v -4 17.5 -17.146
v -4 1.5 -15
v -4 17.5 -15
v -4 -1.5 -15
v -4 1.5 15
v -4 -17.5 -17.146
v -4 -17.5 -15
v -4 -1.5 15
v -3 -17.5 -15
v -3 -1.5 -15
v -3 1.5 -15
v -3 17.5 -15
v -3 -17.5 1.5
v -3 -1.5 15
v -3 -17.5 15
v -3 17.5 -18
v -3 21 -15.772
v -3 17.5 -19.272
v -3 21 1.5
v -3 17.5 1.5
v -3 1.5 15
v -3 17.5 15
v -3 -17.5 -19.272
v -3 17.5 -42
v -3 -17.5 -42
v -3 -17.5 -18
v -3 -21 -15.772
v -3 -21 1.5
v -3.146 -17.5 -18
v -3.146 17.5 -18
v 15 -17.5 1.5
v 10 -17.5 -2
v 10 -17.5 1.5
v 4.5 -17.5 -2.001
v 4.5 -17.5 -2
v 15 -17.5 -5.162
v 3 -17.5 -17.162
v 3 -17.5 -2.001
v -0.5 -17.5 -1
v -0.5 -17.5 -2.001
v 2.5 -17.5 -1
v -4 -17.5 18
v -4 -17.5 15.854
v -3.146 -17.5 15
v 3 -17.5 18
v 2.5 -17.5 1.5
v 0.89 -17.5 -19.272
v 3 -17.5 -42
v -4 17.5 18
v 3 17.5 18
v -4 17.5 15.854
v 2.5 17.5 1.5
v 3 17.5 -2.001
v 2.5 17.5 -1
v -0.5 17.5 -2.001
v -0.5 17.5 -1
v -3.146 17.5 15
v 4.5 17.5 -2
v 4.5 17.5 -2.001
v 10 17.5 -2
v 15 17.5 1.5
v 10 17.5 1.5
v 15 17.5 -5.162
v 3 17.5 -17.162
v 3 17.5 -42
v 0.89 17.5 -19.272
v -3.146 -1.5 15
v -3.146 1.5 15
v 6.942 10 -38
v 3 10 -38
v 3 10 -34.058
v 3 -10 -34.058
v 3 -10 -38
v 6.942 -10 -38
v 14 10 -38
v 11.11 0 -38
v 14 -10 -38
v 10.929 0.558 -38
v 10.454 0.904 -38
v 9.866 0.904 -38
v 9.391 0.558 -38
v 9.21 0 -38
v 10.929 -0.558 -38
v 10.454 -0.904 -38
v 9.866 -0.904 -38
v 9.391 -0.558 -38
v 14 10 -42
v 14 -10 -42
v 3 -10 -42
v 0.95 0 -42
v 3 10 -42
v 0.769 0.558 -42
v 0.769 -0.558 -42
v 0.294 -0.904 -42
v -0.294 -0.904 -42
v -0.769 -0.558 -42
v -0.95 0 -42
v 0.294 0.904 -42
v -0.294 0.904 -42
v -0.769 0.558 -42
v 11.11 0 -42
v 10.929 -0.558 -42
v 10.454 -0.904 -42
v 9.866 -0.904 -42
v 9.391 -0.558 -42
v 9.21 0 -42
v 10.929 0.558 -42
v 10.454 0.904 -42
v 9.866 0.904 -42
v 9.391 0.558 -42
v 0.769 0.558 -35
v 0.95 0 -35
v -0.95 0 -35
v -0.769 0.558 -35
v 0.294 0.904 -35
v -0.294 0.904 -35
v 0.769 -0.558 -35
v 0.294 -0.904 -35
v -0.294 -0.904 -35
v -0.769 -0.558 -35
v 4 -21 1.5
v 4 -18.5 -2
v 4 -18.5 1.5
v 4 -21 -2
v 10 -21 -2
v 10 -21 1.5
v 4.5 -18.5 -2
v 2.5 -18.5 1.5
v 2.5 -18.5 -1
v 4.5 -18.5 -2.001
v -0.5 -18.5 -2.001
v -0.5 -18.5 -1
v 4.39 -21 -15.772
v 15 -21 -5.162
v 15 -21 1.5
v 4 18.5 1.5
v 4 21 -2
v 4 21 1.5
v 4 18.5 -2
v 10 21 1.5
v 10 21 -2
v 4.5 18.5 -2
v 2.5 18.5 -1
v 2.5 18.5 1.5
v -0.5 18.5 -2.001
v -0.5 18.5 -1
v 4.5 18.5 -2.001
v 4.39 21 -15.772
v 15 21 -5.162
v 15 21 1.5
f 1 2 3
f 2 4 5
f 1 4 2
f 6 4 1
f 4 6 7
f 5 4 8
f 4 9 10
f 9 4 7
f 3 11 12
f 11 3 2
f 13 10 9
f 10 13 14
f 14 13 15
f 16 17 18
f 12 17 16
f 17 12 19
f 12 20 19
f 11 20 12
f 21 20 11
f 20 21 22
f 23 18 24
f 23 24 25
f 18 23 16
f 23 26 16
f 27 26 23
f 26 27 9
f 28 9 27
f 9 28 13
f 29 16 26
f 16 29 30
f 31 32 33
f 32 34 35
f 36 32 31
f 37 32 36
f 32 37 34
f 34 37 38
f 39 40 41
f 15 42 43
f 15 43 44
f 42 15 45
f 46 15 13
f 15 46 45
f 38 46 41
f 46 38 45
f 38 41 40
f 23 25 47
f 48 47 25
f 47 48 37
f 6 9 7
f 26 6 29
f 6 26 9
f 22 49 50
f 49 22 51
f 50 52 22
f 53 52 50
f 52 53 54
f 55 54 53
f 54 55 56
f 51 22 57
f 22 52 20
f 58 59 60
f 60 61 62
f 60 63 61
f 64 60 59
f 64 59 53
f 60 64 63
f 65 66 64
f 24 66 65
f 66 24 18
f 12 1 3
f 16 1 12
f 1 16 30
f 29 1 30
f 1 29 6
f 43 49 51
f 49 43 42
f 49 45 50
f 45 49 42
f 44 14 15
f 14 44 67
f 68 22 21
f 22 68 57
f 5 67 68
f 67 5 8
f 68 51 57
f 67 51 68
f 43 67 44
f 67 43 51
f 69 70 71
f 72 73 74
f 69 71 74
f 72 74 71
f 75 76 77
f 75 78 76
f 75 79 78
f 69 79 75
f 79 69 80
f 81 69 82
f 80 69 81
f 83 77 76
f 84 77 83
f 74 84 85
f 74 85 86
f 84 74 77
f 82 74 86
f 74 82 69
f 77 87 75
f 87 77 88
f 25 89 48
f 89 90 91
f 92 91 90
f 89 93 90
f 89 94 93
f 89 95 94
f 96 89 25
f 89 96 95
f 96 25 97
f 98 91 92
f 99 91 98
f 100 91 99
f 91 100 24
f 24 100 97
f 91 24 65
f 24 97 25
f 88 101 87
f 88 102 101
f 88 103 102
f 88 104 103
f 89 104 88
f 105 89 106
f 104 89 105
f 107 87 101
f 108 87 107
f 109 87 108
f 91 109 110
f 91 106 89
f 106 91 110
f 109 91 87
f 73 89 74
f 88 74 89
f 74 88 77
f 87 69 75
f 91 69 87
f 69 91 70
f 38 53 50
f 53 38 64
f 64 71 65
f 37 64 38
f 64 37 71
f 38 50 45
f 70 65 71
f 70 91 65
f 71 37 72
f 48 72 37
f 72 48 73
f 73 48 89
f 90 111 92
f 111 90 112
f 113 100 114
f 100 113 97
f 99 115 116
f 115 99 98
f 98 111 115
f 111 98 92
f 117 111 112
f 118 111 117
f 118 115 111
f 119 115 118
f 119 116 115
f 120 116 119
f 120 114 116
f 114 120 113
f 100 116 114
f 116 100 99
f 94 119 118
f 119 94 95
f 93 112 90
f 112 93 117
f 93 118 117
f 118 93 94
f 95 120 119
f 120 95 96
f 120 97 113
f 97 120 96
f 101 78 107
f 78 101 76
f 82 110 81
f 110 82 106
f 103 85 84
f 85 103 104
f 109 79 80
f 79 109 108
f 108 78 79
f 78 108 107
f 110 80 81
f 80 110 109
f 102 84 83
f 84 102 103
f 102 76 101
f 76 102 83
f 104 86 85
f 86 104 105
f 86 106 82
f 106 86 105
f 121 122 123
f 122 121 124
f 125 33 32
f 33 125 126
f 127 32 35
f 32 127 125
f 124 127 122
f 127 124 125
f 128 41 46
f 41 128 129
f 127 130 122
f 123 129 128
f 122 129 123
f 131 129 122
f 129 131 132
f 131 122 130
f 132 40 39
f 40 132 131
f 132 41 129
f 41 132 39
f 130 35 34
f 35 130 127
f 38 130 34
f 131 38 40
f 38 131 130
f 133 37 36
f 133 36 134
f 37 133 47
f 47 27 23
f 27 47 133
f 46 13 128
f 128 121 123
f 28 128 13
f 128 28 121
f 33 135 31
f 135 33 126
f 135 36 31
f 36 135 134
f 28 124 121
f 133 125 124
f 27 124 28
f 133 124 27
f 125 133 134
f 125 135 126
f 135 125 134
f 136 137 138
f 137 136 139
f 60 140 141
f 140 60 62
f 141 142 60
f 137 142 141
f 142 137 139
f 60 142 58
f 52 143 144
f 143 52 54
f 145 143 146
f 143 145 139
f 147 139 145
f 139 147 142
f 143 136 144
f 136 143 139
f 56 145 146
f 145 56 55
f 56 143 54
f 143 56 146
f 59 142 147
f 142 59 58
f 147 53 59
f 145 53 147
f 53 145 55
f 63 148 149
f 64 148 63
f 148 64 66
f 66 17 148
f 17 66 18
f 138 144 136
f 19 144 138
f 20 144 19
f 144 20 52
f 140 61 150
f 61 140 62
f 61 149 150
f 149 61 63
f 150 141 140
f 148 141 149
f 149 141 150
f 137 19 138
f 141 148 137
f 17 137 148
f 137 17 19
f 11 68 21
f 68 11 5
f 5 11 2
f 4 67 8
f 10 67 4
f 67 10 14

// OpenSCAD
yfan=35; // plastic contact to aluminium
zfan=24;
zalu=30; // aluminium height 30
yalu=3.0; // aluminium middle trench 3
xalu=1.0; // aluminium grip thickness
yhole=30; // vent hole
zhole=21;

xhook=5;
yhook=3.5;
zhook=3;
zhook_nozzle=48; // from hook center to nozzle height 38 mm
xnozzle=8.6; // from aluminum to nozzle center
thick=6; // desired thickness
fan_hook_clearance=1; // for the hook which will hold fan during zsensor
xfan_clearance=1;
xpcbh_start=3; // first screw hole X start
xpcbh=16; // pcb holder X
ypcbh=20;
zpcbh=4; // pcb holder Z thickness
xscrew=4*2.54; // x-screw distance
dscrew=1.9; // screw hole diameter
zscrew=7; // screw length
dspring=1.0; // spring diameter
trench=2.0; // spring trench depth

module switch_holder()
{
//translate([0,0,(zfan+(zhook_nozzle-zfan/2))/2])
  union()
  {
    // aluminium grips to fix z-level
    // vertical beam
    translate([-thick/2-xalu/2,0,0])
      cube([xalu,yalu,zalu],center=true);
    // lower horizontal
    translate([-thick/2-xalu/2,0,-zalu/2-yalu/2])
      difference()
      {
        cube([xalu,yfan,yalu],center=true);
        // 45 deg cut for printing
        translate([0,0,-yalu/2-xalu*sqrt(2)/4])
          rotate([0,-45,0])
            cube([xalu,yfan,yalu],center=true);
      }
    // Upper horizontal
    translate([-thick/2-xalu/2,0,+zalu/2+yalu/2])
      difference()
      {
        cube([xalu,yfan,yalu],center=true);
        // 45 deg cut for printing
        translate([0,0,-yalu/2-xalu*sqrt(2)/4])
          rotate([0,-45,0])
            cube([xalu,yfan,yalu],center=true);

      }
    // bottom positional helper
    if(0)
    translate([-thick/2-xalu/2,0,-48.5])
      cube([xalu,yfan,yalu],center=true);
    // fan positional helper
    if(0)
    translate([3.5,0,-5.5])
      cube([xalu,yfan,yalu],center=true);

      // plastic base under the fan
    translate([0,0,-(zfan/2)])
      difference()
      {
        union()
        {
          // main plate
          cube([thick,yfan,zhook_nozzle+zfan/2],center=true);
          // bottom PCB holder
    translate([xpcbh/2-zpcbh/2,0,-(zhook_nozzle+zfan/2)/2+zpcbh/2])
      difference()
      {
        union()
        {
          cube([xpcbh,ypcbh,zpcbh],center=true);
          // enforcement block
          translate([zpcbh+thick/2-xpcbh/2,0,zpcbh])
            difference()
            {
              cube([zpcbh+0.001,ypcbh+0.001,zpcbh+0.001],center=true);
              // 45 deg cut
              translate([zpcbh*0.7,0,zpcbh*0.7])
                rotate([0,45,0])
                  cube([zpcbh*2+0.002,ypcbh+0.002,zpcbh*2+0.002],center=true);
            }
        }
      }
        }
        // subtracting objects:
        // screw holes for PCB
        for(i=[0:1])
          translate([xpcbh_start-thick/2,0,-(zhook_nozzle+zfan/2)/2+zscrew/2])
            translate([i*xscrew,0,0])
              cylinder(d=dscrew,h=zscrew+0.001,$fn=10,center=true);

        // fan hole
        if(0)
        translate([0,0,zfan/2])
          difference()
          {
            cube([thick+0.001,yhole,zhole],center=true);
            // cut off top 45
            for(i=[-1:2:1])
            translate([0,i*yhole/2,zhole/2])
              rotate([45,0,0])
                cube([thick+0.002,15,15],center=true);
          }
      }
    // hooks
    xh=xhook*2+2*fan_hook_clearance+thick;
    zh=zhook+xh;
    // two hooks left-right
    for(i=[-1:2:1])
    {
      translate([-thick/2+xh/2,(yfan/2+yhook/2)*i,-zh/2+zhook/2])
        difference()
        {
          // full hook
          cube([xh,yhook,zh],center=true);
          union()
          {
              // cut to hold fan assembly
            translate([thick+xfan_clearance-xh/2+xhook/2+fan_hook_clearance/2,0,zh/2-zhook/2])
              cube([xhook+fan_hook_clearance,yhook+2*fan_hook_clearance,zhook+fan_hook_clearance],center=true);
              // cut for the spring
              // along Z
            translate([thick+xfan_clearance-xh/2+fan_hook_clearance/2-trench/2,-(yhook/2-dspring/2)*i,zh/2-zhook/2])
              cube([trench+0.001,dspring+0.001,zhook+0.001],center=true);
            // along X
            translate([thick+xfan_clearance-xh/2+fan_hook_clearance/2-xhook/2,-(yhook/2-dspring/2)*i,zh/2-zhook])
              cube([xhook+0.001,dspring+0.001,dspring+0.001],center=true);

          // easier print: big cut 45 from X
          translate([zh*1,0,-zh*0.66])
            rotate([0,45,0])
              cube([2*zh,2*zh,2*zh],center=true);
          // easier print: small cut 45 from Y
          translate([zh*0,zh*i,-zh*0.82])
            rotate([45,0,0])
              cube([2*zh,2*zh,2*zh],center=true);

          }
        }
    }
    
  }
}

switch_holder();
